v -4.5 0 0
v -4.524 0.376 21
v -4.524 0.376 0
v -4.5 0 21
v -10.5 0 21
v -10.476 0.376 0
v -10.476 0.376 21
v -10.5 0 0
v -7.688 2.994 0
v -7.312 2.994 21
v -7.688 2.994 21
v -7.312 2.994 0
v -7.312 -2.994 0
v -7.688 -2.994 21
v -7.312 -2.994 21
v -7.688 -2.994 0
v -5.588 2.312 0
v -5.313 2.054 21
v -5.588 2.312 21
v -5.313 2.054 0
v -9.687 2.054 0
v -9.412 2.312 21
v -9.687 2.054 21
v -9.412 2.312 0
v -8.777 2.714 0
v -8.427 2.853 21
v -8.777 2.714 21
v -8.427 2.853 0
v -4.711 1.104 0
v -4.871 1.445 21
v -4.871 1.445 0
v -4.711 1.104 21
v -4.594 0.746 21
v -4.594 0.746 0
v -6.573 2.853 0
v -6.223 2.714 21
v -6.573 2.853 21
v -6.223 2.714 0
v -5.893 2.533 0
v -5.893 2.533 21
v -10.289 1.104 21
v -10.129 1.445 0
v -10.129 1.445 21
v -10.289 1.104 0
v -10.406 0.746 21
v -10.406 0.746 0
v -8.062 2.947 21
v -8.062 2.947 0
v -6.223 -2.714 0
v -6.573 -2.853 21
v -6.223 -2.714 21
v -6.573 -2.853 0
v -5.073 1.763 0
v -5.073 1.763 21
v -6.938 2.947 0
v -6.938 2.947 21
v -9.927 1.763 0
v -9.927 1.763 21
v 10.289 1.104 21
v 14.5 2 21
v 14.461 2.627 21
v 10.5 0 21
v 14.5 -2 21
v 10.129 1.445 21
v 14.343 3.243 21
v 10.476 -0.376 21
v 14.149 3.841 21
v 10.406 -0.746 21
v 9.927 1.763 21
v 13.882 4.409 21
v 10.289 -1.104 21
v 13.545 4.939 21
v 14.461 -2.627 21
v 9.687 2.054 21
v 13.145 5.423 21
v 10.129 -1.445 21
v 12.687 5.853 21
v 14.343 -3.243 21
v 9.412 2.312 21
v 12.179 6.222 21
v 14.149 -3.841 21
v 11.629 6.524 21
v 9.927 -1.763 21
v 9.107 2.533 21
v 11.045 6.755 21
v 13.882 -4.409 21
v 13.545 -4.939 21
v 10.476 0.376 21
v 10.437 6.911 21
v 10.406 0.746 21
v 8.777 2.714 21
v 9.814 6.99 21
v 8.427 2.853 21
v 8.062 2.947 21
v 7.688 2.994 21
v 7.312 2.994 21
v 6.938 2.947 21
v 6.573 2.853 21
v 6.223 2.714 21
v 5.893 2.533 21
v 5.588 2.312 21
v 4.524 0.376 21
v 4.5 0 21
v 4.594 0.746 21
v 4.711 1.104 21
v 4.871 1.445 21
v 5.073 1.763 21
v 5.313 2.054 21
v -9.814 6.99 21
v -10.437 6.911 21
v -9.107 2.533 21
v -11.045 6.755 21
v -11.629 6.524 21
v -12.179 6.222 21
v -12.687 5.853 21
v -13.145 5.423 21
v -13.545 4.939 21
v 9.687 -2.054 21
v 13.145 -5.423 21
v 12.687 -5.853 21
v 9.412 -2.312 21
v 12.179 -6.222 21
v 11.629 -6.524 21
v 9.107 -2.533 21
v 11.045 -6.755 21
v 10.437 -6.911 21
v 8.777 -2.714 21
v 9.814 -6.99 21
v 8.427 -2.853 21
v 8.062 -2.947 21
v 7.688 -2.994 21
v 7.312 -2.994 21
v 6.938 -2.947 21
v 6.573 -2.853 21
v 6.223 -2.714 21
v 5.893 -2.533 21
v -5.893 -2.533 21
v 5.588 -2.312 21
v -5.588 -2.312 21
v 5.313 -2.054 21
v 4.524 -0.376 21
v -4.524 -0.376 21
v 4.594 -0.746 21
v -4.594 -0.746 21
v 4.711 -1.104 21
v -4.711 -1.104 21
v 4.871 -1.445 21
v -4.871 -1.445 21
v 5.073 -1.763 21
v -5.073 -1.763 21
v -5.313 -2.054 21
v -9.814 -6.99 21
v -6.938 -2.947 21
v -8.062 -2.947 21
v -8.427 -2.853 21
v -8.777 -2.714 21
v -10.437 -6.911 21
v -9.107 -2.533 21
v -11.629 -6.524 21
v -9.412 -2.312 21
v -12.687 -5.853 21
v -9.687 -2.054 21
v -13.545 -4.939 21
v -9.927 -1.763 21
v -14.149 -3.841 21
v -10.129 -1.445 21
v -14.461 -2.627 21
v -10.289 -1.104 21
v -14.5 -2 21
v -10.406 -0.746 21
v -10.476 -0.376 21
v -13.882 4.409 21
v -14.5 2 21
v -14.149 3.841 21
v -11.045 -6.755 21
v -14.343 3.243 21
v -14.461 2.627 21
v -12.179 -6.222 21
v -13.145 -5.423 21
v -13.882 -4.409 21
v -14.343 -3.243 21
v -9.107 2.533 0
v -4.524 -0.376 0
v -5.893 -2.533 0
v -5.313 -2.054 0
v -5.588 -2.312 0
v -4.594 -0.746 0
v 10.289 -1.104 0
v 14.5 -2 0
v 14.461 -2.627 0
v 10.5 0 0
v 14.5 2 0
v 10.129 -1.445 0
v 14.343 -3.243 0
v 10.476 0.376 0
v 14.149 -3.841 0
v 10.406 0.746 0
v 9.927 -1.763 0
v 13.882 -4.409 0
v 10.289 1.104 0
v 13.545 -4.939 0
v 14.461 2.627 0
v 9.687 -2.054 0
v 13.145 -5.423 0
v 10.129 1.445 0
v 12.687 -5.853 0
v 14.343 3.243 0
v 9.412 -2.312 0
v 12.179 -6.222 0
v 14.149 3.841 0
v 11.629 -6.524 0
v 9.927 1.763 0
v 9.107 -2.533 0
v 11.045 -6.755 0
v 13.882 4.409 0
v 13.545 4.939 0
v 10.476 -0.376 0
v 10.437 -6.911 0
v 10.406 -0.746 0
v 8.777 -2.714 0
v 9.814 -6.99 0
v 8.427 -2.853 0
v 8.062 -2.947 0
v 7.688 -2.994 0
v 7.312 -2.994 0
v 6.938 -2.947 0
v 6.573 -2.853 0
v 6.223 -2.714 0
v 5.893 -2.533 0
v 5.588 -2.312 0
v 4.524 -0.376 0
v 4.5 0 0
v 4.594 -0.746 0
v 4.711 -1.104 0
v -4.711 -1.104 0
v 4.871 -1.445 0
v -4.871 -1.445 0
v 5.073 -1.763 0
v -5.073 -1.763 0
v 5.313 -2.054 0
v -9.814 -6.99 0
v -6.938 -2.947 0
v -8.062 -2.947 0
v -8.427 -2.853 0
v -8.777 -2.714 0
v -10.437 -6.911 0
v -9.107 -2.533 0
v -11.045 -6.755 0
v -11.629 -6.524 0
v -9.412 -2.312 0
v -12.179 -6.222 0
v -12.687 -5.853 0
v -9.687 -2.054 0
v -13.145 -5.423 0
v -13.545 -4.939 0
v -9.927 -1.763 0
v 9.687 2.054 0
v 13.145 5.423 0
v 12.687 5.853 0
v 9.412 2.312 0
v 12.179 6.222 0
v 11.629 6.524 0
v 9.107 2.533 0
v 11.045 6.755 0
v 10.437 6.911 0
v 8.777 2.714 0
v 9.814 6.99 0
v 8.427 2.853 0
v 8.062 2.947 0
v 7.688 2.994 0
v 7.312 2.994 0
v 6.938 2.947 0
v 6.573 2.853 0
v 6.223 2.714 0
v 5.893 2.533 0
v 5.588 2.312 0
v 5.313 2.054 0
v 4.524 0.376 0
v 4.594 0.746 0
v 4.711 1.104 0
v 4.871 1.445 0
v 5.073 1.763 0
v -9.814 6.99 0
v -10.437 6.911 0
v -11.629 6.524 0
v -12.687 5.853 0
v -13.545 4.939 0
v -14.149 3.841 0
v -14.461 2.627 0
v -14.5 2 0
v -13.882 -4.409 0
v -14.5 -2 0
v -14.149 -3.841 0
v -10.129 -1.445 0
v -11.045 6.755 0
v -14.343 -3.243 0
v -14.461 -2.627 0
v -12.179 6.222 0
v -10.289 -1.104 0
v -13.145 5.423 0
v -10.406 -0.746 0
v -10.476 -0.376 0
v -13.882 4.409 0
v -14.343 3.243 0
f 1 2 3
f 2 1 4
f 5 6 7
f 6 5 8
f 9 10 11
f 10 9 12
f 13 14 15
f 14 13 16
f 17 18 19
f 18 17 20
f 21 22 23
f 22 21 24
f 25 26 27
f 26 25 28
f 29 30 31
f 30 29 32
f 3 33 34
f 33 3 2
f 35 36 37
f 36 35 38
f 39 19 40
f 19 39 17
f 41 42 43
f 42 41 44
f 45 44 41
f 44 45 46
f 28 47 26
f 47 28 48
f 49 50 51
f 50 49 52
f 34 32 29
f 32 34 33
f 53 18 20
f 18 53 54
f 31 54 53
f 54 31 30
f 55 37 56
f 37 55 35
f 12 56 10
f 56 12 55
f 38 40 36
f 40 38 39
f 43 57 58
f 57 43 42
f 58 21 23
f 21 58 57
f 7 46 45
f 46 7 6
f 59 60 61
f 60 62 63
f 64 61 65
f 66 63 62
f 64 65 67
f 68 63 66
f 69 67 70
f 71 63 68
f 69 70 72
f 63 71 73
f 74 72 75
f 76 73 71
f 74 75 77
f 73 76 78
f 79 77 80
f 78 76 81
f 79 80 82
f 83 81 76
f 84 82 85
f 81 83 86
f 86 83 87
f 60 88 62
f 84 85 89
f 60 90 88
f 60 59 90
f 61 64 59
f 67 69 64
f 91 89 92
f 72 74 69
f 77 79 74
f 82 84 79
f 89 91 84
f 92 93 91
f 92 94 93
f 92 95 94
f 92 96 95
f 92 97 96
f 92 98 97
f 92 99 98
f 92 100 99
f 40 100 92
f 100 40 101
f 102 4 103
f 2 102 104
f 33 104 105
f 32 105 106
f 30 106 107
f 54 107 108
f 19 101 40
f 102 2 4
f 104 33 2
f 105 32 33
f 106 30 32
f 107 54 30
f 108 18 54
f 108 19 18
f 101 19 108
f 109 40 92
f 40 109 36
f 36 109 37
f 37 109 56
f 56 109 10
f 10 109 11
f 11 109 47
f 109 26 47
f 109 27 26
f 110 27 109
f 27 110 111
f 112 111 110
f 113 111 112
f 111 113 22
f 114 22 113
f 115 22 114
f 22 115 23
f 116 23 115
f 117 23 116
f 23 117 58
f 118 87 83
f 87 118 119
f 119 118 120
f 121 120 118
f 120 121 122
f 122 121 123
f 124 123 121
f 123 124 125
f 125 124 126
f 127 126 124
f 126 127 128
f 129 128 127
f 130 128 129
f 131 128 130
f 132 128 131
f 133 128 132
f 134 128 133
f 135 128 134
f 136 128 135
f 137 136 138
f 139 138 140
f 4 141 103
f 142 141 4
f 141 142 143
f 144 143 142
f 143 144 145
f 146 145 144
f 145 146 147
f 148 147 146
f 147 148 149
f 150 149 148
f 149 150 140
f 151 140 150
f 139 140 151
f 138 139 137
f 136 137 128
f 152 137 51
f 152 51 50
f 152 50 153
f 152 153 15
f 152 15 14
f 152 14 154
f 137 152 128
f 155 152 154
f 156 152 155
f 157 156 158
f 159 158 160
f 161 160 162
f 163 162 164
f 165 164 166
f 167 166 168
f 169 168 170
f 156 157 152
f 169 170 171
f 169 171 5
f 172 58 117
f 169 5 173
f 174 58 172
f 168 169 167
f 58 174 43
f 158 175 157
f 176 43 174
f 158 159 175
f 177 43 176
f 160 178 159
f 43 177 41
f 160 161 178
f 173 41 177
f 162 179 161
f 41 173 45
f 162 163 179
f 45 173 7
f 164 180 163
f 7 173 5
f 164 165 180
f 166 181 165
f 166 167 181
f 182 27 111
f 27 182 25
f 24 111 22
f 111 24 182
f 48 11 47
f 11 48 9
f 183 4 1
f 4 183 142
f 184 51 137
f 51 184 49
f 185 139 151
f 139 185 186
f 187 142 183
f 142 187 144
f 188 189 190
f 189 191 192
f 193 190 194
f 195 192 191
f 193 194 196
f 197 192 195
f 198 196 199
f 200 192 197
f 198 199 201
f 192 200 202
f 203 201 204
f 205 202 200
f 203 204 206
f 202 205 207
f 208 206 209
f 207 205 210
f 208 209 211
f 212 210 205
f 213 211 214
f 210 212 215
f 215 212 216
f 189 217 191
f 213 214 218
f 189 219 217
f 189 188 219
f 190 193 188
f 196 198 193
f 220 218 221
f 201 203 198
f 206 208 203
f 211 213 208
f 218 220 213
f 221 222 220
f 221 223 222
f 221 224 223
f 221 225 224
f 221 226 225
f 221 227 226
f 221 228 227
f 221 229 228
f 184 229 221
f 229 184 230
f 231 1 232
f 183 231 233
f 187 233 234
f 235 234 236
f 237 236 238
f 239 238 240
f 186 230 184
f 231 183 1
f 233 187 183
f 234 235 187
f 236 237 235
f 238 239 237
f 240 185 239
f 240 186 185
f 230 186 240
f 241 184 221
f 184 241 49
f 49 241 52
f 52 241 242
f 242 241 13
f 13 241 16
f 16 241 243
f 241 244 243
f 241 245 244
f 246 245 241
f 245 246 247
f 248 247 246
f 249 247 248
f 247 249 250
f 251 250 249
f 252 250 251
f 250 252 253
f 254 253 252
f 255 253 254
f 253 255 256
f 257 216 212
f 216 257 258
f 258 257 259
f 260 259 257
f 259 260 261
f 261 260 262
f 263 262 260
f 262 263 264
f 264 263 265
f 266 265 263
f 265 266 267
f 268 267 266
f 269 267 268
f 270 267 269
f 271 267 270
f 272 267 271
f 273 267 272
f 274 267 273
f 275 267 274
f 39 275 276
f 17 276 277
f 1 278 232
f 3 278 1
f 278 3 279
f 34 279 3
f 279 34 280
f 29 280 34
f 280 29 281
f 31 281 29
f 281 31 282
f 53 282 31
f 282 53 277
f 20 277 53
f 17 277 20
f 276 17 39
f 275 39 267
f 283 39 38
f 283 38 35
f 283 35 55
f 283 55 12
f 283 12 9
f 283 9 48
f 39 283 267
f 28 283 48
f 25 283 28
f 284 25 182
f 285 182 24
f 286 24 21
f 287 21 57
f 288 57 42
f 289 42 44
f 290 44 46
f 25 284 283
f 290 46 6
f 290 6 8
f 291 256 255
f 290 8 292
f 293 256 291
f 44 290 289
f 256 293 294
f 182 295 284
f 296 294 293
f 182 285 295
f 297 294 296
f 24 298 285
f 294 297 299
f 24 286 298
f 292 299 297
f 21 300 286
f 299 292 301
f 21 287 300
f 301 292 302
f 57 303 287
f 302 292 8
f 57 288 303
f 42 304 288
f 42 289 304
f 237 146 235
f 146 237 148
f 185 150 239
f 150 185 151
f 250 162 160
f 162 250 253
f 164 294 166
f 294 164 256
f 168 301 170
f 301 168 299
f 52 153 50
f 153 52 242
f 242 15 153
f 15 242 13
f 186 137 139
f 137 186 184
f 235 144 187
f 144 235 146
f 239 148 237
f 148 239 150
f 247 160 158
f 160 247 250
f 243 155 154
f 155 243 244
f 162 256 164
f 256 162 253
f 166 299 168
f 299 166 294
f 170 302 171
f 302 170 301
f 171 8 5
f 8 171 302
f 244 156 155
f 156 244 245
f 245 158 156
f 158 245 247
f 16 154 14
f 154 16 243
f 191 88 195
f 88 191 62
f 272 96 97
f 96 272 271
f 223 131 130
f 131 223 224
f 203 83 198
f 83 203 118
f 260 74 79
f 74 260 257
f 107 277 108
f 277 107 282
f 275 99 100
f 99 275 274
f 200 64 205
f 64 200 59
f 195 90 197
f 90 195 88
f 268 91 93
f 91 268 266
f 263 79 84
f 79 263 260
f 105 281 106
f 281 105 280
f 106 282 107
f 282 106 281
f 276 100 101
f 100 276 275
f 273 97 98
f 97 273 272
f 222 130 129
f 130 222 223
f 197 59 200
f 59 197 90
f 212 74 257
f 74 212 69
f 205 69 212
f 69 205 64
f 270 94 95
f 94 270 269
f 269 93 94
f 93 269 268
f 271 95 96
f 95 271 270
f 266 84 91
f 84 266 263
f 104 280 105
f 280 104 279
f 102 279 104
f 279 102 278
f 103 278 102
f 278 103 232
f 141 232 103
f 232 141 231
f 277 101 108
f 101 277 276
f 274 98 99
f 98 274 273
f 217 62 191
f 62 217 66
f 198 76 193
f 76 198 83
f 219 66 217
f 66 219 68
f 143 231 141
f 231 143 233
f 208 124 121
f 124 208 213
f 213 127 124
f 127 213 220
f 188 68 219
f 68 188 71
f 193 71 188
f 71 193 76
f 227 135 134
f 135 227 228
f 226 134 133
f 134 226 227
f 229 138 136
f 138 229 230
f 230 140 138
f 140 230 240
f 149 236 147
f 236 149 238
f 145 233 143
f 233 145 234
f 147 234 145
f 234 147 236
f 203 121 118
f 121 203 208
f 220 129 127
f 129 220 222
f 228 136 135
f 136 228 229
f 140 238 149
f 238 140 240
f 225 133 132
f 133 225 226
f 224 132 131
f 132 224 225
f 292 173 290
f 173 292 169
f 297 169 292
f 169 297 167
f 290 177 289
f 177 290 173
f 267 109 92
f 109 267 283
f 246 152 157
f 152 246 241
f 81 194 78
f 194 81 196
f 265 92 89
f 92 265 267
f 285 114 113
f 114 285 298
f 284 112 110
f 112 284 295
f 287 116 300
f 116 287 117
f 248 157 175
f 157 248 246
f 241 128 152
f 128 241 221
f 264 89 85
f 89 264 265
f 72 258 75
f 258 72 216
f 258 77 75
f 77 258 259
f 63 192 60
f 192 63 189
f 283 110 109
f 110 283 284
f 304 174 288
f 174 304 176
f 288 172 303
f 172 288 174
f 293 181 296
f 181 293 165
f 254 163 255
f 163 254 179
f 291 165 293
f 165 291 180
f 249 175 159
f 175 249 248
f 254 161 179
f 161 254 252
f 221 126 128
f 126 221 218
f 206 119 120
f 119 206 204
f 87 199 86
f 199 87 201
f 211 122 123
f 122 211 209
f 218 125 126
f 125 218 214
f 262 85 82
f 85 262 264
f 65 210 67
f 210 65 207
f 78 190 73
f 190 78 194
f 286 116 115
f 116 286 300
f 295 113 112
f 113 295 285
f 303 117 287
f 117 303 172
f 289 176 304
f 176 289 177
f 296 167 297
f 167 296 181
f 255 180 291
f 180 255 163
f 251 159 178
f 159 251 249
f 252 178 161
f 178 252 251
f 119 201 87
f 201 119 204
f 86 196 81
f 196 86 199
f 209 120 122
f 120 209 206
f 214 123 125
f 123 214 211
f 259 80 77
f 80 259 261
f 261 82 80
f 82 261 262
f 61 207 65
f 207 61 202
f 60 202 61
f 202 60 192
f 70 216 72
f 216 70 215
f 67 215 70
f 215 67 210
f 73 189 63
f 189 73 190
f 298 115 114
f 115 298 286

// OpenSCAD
$fn = 50;


difference() {
	union() {
		hull() {
			translate(v = [-9.5000000000, 2.0000000000, 0]) {
				cylinder(h = 21, r = 5);
			}
			translate(v = [9.5000000000, 2.0000000000, 0]) {
				cylinder(h = 21, r = 5);
			}
			translate(v = [-9.5000000000, -2.0000000000, 0]) {
				cylinder(h = 21, r = 5);
			}
			translate(v = [9.5000000000, -2.0000000000, 0]) {
				cylinder(h = 21, r = 5);
			}
		}
	}
	union() {
		translate(v = [-7.5000000000, 0.0000000000, 0]) {
			cylinder(h = 21, r = 3.0000000000);
		}
		translate(v = [7.5000000000, 0.0000000000, 0]) {
			cylinder(h = 21, r = 3.0000000000);
		}
		translate(v = [-7.5000000000, 0.0000000000, 0]) {
			cylinder(h = 21, r = 1.5000000000);
		}
		translate(v = [7.5000000000, 0.0000000000, 0]) {
			cylinder(h = 21, r = 1.5000000000);
		}
		translate(v = [-7.5000000000, 0.0000000000, 0]) {
			cylinder(h = 21, r = 1.5000000000);
		}
		translate(v = [7.5000000000, 0.0000000000, 0]) {
			cylinder(h = 21, r = 1.5000000000);
		}
		translate(v = [-7.5000000000, 0.0000000000, 0]) {
			cylinder(h = 21, r = 1.5000000000);
		}
		translate(v = [7.5000000000, 0.0000000000, 0]) {
			cylinder(h = 21, r = 1.5000000000);
		}
	}
}
